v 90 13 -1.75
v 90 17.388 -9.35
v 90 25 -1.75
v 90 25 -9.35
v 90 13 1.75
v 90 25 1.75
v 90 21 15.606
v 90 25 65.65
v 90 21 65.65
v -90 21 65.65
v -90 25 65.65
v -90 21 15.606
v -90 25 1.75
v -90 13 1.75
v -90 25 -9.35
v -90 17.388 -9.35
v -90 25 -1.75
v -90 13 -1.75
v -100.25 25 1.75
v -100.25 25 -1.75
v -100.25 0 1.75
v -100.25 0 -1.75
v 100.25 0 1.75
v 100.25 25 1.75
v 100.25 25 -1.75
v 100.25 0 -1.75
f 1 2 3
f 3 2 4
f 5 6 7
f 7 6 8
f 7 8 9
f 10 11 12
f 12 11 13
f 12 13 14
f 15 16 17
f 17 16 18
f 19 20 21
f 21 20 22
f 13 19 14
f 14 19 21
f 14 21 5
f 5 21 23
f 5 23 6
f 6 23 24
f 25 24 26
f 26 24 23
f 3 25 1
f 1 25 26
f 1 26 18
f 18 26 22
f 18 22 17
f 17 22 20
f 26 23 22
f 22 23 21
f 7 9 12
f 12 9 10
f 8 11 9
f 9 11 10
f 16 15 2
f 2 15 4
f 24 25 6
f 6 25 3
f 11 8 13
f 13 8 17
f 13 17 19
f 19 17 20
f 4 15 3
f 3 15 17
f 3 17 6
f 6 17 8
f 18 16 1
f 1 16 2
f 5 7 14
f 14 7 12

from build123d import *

# Parameters (mm, degrees)
SKETCH1_W           = 200.5
SKETCH1_H           = 3.5
BOSS_EXTRUDE1_DEPTH = 21
SKETCH3_W           = 180
SKETCH3_H           = 75
BOSS_EXTRUDE2_DEPTH = 4
CHAMFER1_SIZE       = 8
CHAMFER1_SIZE_2     = 13.856406461
SKETCH4_W           = 10.25
SKETCH4_H           = 3.5
BOSS_EXTRUDE3_DEPTH = 4


with BuildPart() as part:
    # Sketch1 → Boss-Extrude1 (new body)
    with BuildSketch(Plane(origin=(0, 0, 0), x_dir=(1, 0, 0), z_dir=(0, 1, 0))):
        Rectangle(SKETCH1_W, SKETCH1_H)
    extrude(amount=BOSS_EXTRUDE1_DEPTH)

    # Sketch3 → Boss-Extrude2 (add)
    with BuildSketch(Plane(origin=(0, 21, 0), x_dir=(1, 0, 0), z_dir=(0, 1, 0))):
        with Locations((0, -28.15)):
            Rectangle(SKETCH3_W, SKETCH3_H)
    extrude(amount=BOSS_EXTRUDE2_DEPTH)

    # Chamfer1
    # the kernel refuses this chamfer: 13.856406461, 8 mm, written as the material it adds along each edge
    with BuildSketch(Plane(origin=(-90, 21, -1.75), x_dir=(0, -0.9983227437537926, 0.0578938624026714), z_dir=(1, 0, 0))) as chamfer1_piece_1_section:
        Polygon((CHAMFER1_SIZE * 0.998322743754, CHAMFER1_SIZE * 0.0578938624027), (-CHAMFER1_SIZE_2 * 0.0578938624008, CHAMFER1_SIZE_2 * 0.998322743721), (0, 0), align=None)
    chamfer1_piece_1 = extrude(amount=180, mode=Mode.PRIVATE)
    chamfer1_piece_1 = split(chamfer1_piece_1, bisect_by=Plane(origin=(0, 17.958795912, -9.35), z_dir=(0, 0, 1)), keep=Keep.TOP, mode=Mode.PRIVATE)
    add(chamfer1_piece_1)
    with BuildSketch(Plane(origin=(90, 21, 1.75), x_dir=(0, -0.9983227437537926, -0.0578938624026714), z_dir=(-1, 0, 0))) as chamfer1_piece_2:
        Polygon((CHAMFER1_SIZE * 0.998322743754, CHAMFER1_SIZE * 0.0578938624027), (-CHAMFER1_SIZE_2 * 0.0578938624008, CHAMFER1_SIZE_2 * 0.998322743721), (0, 0), align=None)
    extrude(amount=180)

    # Sketch4 → Boss-Extrude3 (add)
    with BuildSketch(Plane(origin=(0, 21, 0), x_dir=(1, 0, 0), z_dir=(0, 1, 0))):
        with Locations((-95.125, 0)):
            Rectangle(SKETCH4_W, SKETCH4_H)
        with Locations((95.125, 0)):
            Rectangle(SKETCH4_W, SKETCH4_H)
    extrude(amount=BOSS_EXTRUDE3_DEPTH)


solid = part.part
